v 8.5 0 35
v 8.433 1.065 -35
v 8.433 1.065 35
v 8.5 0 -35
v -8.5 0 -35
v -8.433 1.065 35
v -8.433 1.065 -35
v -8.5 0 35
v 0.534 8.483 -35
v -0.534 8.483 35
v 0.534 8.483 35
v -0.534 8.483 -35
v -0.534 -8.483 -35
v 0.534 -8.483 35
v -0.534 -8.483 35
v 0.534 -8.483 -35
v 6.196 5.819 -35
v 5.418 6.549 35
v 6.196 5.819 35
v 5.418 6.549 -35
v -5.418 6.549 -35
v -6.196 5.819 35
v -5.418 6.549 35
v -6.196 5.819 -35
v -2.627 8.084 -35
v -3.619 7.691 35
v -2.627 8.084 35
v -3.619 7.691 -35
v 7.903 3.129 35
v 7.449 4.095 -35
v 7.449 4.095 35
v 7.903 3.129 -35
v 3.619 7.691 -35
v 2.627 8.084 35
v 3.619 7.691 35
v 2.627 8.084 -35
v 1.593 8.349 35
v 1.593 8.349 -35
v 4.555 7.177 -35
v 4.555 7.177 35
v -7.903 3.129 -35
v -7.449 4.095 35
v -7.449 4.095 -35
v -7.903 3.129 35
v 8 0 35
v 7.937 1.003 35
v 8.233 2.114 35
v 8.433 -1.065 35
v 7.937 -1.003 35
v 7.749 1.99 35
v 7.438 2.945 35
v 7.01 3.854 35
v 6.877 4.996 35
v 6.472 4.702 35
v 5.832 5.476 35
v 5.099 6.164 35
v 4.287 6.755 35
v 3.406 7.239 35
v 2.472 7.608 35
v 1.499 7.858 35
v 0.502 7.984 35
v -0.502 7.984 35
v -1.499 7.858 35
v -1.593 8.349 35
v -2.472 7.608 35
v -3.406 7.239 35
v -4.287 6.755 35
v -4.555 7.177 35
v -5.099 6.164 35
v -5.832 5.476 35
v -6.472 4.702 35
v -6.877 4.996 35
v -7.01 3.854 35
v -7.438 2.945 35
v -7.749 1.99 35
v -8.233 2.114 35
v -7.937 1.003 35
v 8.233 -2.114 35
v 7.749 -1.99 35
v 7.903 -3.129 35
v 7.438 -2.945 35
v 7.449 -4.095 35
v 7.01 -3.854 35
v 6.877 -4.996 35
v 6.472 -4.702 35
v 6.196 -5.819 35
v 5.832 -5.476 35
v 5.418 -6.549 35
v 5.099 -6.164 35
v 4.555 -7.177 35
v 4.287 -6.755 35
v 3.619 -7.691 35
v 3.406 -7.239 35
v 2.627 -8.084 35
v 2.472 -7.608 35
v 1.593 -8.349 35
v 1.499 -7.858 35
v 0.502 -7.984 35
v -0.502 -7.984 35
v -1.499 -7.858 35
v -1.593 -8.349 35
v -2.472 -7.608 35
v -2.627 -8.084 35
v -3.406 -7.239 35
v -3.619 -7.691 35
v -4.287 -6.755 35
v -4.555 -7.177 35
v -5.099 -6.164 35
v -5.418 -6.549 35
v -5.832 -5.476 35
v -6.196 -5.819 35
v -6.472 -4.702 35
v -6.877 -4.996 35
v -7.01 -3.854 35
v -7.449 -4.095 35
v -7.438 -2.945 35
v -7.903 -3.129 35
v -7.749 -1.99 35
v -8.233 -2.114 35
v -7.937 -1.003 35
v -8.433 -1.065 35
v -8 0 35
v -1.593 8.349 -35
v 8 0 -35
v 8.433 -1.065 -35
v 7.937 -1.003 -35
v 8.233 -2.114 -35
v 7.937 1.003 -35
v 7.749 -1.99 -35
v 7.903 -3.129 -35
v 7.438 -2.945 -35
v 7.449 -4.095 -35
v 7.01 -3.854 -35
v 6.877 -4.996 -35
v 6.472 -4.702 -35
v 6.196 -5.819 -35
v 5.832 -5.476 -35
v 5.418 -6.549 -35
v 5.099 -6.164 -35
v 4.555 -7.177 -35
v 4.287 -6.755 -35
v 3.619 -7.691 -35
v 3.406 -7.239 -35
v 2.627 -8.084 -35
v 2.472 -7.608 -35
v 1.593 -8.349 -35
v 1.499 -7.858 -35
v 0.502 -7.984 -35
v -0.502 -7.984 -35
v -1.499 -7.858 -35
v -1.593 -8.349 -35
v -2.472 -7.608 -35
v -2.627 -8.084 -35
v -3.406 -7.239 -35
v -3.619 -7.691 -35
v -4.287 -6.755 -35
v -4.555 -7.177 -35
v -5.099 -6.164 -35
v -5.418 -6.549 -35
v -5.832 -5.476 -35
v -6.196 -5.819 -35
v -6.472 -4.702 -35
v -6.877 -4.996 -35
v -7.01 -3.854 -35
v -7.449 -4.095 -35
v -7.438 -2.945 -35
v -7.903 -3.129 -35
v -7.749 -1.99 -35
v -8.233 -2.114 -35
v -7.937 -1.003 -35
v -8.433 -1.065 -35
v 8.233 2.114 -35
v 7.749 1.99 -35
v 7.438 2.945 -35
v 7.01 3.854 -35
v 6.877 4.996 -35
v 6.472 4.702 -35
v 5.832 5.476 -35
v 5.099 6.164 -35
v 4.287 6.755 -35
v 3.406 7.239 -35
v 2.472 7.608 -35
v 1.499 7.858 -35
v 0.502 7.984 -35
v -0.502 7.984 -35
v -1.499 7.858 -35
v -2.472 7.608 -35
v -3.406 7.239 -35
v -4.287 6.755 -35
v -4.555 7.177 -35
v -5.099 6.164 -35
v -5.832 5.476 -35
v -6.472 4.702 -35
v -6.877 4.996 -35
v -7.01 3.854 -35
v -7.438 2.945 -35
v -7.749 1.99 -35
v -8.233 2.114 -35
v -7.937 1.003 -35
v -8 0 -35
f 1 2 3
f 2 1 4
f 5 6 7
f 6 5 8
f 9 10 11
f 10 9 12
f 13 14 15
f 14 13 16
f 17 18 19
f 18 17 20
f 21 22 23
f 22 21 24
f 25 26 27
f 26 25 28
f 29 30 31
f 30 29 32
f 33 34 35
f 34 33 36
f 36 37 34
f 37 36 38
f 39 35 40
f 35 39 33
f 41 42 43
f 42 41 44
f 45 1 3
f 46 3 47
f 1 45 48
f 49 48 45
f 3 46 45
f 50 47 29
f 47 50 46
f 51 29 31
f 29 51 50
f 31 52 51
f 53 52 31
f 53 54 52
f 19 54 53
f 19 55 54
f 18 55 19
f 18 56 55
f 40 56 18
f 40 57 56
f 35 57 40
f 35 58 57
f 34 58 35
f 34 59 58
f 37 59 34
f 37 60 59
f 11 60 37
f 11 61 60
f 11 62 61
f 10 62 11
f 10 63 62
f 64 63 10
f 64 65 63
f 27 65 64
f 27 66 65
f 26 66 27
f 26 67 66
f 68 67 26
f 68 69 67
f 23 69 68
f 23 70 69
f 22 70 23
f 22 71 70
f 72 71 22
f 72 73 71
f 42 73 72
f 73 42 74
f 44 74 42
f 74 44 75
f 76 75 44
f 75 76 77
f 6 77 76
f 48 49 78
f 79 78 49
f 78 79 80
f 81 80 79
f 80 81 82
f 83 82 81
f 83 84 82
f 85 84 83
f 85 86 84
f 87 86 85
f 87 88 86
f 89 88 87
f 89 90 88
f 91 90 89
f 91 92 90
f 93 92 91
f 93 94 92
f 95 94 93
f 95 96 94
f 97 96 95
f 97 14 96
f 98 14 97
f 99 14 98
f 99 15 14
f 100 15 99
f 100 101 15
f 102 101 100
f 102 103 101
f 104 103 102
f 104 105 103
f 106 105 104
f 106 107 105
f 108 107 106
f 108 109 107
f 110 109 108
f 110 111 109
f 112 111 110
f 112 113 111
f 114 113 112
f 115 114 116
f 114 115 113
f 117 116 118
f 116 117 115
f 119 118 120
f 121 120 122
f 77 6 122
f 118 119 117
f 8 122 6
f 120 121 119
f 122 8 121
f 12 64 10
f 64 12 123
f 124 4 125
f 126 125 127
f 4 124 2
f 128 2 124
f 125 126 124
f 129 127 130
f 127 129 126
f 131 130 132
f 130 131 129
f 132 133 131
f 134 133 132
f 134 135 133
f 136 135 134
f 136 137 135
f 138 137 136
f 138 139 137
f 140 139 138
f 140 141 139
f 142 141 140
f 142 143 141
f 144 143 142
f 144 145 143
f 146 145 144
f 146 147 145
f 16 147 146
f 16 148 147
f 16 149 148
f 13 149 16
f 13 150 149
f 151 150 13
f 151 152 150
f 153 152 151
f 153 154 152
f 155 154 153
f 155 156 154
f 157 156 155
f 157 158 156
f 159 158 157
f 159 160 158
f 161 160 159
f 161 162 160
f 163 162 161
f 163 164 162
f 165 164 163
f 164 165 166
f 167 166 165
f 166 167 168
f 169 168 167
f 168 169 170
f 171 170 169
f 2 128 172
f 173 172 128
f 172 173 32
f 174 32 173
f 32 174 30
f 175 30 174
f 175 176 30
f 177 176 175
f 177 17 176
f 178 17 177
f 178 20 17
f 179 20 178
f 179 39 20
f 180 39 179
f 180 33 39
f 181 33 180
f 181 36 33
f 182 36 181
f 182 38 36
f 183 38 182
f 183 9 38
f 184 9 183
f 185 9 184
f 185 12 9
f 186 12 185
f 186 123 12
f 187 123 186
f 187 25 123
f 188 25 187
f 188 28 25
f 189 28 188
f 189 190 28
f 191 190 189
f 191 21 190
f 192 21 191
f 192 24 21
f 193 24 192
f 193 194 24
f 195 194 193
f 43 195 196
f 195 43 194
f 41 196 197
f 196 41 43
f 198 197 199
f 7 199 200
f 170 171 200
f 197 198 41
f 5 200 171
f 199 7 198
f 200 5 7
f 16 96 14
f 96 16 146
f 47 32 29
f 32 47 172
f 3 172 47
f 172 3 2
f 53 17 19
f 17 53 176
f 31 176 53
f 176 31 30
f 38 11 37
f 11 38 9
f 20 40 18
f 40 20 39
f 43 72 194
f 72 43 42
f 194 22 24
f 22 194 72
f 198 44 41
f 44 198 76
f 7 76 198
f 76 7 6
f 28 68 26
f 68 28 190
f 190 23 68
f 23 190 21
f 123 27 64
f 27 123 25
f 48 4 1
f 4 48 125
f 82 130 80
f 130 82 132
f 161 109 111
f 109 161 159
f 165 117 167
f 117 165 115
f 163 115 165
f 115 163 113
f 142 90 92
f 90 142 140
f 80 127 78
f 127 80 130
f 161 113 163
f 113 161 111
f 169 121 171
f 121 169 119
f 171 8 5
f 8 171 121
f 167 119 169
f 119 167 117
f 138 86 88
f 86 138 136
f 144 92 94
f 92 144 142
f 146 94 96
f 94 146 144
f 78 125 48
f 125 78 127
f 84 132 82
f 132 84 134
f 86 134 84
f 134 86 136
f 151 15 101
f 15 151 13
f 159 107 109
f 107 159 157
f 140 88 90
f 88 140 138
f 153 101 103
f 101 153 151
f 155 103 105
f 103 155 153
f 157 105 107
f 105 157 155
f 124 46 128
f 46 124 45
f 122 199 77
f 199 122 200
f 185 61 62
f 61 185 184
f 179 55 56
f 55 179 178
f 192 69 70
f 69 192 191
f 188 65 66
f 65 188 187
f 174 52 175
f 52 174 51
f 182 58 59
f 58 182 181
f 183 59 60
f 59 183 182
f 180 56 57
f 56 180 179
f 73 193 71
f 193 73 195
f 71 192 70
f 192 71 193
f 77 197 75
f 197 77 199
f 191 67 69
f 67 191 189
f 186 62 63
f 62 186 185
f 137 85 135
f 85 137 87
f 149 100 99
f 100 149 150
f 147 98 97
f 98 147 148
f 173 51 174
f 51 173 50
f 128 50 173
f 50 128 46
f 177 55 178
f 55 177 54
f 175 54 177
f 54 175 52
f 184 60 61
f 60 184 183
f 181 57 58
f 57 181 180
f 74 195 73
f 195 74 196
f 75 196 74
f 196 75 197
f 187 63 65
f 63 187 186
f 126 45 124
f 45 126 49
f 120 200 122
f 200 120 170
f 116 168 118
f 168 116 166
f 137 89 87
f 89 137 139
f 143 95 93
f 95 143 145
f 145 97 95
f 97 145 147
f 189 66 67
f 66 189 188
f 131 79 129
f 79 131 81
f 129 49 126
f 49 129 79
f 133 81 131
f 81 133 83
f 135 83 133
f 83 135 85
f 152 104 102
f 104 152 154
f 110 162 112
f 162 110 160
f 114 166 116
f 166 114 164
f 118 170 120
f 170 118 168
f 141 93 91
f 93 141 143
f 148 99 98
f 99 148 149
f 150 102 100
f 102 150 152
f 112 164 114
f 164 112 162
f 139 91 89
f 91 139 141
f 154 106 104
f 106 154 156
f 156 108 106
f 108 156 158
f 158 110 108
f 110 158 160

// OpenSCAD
$fn = 50;


difference() {
	union() {
		translate(v = [0, 0, -35.0000000000]) {
			cylinder(h = 70, r = 8.5000000000);
		}
	}
	union() {
		translate(v = [0, 0, -100.0000000000]) {
			cylinder(h = 200, r = 8);
		}
	}
}
